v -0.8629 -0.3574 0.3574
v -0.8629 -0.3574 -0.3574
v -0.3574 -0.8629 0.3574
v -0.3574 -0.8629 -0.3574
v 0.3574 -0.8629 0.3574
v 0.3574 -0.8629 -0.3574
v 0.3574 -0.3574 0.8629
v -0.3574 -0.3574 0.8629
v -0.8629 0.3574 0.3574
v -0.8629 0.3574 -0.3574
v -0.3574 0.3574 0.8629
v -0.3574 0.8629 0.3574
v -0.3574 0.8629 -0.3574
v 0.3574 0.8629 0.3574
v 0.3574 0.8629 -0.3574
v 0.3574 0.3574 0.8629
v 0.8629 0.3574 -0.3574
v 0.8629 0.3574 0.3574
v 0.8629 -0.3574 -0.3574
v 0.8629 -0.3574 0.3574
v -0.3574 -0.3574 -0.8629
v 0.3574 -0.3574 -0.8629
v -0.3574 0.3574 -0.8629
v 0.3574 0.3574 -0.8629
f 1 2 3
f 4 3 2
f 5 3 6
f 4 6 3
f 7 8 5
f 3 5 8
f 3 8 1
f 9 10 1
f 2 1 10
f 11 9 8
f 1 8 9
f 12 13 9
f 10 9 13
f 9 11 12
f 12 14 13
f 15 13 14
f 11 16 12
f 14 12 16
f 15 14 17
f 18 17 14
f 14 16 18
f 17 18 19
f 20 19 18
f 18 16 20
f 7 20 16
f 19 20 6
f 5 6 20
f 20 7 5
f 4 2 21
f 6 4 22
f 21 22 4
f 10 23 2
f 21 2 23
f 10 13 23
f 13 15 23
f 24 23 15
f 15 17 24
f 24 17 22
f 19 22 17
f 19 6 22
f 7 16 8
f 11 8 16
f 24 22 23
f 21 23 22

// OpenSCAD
polyhedron( points = [[-0.357406743976453, -0.862856208736854, 0.357406744188952], [-0.862856208798823, -0.357406743846405, 0.357406744188952], [-0.862856209076645, 0.35740674444775, 0.357406744188952], [-0.357406744647177, 0.862856209292813, 0.357406744188952], [0.357406743337069, 0.862856209292813, 0.357406744188952], [0.862856208204832, 0.357406744447757, 0.357406744188952], [0.862856208546827, -0.357406743846406, 0.357406744188952], [0.357406744162748, -0.862856208736854, 0.357406744188952], [-0.35740674394436, -0.862856208659375, -0.357406743950248], [-0.862856208734638, -0.357406743801019, -0.357406743840676], [-0.862856208625066, 0.357406744260705, -0.357406743950248], [-0.357406743679833, 0.862856208499234, -0.357406744214779], [0.357406744582236, 0.862856208028858, -0.35740674447931], [0.862856209327125, 0.357406743125116, -0.357406744588877], [0.862856209217551, -0.357406744781655, -0.35740674447931], [0.357406744317705, -0.862856209065566, -0.357406744214779], [-0.35740674394436, -0.357406743637045, 0.862856208801963], [0.357406744001143, -0.357406743819396, 0.862856208619613], [0.357406743497917, 0.357406744392967, 0.862856208866148], [-0.357406744395941, 0.357406744366762, 0.862856208866148], [-0.357406743844572, -0.357406743937175, -0.862856208563261], [-0.357406743917351, 0.357406743930854, -0.862856208490478], [0.357406744262921, 0.357406743299252, -0.862856209001549], [0.357406744127145, -0.357406744517127, -0.862856208891975]], faces = [[0, 1, 9, 8], [0, 8, 15, 7], [0, 7, 17, 16], [0, 16, 1], [1, 2, 10, 9], [1, 16, 19, 2], [2, 3, 11, 10], [2, 19, 3], [3, 4, 12, 11], [3, 19, 18, 4], [4, 5, 13, 12], [4, 18, 5], [5, 6, 14, 13], [5, 18, 17, 6], [6, 7, 15, 14], [6, 17, 7], [8, 9, 20], [8, 20, 23, 15], [9, 10, 21, 20], [10, 11, 21], [11, 12, 22, 21], [12, 13, 22], [13, 14, 23, 22], [14, 15, 23], [16, 17, 18, 19], [20, 21, 22, 23]]);
